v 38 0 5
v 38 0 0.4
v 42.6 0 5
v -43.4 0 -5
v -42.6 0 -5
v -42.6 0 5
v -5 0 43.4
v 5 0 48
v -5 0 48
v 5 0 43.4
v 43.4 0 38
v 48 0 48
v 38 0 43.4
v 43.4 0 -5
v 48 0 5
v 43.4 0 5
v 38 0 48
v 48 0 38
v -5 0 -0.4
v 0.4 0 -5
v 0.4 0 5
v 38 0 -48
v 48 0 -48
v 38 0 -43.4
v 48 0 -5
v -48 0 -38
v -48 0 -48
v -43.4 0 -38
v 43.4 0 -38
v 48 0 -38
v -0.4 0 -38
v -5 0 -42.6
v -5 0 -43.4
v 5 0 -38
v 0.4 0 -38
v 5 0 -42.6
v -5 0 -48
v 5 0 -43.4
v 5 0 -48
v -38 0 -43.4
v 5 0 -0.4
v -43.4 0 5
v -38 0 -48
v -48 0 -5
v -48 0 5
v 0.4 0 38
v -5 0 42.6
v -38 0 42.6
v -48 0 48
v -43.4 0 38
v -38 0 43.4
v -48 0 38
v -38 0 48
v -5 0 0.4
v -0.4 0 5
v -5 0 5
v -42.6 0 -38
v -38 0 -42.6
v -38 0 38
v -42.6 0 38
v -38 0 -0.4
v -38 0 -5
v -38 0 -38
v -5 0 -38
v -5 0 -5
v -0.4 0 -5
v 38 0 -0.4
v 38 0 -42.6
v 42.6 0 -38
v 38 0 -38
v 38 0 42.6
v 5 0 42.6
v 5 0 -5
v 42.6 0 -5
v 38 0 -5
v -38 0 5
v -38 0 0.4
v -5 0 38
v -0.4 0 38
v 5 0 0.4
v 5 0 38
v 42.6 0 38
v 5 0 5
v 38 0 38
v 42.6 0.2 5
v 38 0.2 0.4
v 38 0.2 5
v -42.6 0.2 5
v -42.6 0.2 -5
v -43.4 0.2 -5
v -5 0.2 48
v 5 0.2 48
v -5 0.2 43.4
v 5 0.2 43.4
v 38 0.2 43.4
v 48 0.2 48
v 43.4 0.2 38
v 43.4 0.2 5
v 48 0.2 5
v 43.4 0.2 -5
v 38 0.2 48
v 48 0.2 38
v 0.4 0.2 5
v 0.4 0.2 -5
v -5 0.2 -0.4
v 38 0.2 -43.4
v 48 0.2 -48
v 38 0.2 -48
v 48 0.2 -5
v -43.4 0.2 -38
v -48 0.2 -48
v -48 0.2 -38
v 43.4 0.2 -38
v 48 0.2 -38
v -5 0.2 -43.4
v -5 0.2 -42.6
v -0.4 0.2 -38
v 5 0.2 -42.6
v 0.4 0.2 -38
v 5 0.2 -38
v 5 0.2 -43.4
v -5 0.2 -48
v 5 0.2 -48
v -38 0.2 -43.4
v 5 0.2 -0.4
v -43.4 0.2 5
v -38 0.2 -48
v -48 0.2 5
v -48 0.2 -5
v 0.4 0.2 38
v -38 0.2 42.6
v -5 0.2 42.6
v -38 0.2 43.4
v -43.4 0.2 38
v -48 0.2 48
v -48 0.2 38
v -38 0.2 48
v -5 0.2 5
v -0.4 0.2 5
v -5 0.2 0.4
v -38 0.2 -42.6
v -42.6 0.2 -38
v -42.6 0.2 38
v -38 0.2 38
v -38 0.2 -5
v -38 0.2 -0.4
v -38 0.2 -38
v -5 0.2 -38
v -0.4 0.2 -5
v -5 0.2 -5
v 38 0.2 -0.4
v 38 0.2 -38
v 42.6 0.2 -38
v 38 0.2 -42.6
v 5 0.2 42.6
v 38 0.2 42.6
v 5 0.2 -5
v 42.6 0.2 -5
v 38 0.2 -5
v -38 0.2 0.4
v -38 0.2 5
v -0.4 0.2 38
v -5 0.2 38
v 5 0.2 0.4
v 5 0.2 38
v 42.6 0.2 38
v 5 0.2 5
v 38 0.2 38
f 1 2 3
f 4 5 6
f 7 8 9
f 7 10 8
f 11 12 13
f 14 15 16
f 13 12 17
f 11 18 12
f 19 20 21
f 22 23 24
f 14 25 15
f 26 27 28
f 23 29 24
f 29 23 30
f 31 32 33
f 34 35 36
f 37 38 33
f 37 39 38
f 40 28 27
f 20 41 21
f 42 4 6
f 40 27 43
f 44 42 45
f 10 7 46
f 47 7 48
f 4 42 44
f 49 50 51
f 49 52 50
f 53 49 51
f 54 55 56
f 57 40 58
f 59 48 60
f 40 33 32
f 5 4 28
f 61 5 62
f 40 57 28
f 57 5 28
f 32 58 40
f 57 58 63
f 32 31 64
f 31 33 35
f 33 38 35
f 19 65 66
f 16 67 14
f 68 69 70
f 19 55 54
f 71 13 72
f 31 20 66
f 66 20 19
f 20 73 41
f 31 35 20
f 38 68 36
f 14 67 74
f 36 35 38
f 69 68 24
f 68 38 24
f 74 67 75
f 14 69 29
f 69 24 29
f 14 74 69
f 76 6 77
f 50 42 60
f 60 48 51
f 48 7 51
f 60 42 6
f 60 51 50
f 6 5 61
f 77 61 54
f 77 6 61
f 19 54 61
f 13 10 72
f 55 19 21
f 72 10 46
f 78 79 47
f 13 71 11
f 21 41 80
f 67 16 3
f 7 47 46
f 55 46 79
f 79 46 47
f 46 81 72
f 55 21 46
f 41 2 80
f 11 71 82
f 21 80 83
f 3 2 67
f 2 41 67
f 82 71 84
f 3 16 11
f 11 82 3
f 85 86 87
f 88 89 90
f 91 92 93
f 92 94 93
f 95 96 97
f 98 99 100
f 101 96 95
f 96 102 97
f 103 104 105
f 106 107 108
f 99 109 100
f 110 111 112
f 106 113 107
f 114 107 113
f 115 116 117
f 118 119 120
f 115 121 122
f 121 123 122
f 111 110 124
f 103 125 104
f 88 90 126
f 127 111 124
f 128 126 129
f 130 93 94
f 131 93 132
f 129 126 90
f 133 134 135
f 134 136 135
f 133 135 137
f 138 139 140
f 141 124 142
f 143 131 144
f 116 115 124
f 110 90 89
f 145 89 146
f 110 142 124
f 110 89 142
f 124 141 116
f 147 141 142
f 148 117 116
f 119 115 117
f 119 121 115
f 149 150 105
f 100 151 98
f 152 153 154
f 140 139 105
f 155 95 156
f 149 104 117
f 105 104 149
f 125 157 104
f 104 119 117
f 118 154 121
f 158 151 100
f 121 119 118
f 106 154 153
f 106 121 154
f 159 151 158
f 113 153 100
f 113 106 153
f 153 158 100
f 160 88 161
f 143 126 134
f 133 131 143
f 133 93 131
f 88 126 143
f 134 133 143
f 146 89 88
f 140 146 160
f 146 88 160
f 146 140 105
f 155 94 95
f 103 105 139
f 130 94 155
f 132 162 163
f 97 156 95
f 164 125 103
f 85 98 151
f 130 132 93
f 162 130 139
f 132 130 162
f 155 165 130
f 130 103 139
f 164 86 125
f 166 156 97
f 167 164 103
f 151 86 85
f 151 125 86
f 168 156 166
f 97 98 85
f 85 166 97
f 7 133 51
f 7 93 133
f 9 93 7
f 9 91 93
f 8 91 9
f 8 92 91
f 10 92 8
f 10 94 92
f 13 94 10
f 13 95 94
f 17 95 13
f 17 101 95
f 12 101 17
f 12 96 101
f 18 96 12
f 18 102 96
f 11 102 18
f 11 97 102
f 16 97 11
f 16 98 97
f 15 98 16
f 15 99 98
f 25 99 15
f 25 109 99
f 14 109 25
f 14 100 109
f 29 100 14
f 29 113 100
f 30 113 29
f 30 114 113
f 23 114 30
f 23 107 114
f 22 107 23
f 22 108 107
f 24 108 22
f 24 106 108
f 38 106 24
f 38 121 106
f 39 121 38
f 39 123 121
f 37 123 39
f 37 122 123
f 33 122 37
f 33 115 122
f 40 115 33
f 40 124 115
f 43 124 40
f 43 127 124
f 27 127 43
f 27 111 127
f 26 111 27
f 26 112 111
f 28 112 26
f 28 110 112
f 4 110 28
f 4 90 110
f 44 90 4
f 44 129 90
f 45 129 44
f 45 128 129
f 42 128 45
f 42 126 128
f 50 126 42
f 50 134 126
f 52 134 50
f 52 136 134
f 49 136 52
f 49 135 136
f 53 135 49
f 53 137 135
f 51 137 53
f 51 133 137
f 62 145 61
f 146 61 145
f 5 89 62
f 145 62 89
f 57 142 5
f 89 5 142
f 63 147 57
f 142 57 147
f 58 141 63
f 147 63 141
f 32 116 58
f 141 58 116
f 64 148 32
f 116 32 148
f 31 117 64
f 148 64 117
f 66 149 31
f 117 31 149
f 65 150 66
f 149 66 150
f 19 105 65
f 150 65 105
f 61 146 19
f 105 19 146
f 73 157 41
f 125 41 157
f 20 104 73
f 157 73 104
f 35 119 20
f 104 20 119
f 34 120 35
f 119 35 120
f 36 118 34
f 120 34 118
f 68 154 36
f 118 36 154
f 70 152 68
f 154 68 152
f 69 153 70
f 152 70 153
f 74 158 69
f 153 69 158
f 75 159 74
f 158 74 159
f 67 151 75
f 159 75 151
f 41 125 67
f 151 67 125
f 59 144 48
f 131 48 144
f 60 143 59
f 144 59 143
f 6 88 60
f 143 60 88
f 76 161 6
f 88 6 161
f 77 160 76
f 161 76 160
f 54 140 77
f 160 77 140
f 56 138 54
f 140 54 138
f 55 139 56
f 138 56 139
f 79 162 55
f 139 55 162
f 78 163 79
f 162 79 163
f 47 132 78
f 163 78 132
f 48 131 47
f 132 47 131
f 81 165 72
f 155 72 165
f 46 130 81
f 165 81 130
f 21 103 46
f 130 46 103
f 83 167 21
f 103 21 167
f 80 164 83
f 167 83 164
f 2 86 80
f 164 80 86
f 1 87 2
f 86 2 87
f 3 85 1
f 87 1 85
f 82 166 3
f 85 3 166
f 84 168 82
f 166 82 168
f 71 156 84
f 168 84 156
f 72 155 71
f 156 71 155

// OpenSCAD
// Bed Level
// 5@axes

$fn = 20;

t_bed_width = 100;
t_bed_depth = 100;
t_bed_border = 2;
t_shape_xcount = 3;
t_shape_ycount = 3;
t_shape_xsize = 10;
t_shape_ysize = 10;
t_line_width = 0.8;
t_thickness = 0.2;


// Bed size
t_print_width = t_bed_width - t_shape_xsize - (2*t_bed_border);
t_print_depth = t_bed_depth - t_shape_ysize - (2*t_bed_border);


rotate(90,[-1, 0, 0]) translate([-t_bed_width*0.5, -t_bed_depth*0.5, 0]) linear_extrude(height = t_thickness) { 
    // shift everything to center in print area
    translate([(t_shape_xsize/2)+t_bed_border,(t_shape_ysize/2)+t_bed_border,0]){
        // intervals between printed shapes
        t_increment_x = t_print_width / (t_shape_xcount-1);
        t_increment_y = t_print_depth / (t_shape_ycount-1);

        // draw grid
        // draw horizontal lines along X axis
        for(t_curr_x = [0:t_shape_xcount-1]){
            translate([t_center_x, t_print_depth/2, 0]){
                square([t_line_width,t_print_depth], true);
            }
            t_center_x = t_curr_x * t_increment_x;
        }
        // draw vertical lines along Y axis
        for(t_curr_y = [0:t_shape_ycount-1]){
            translate([t_print_width/2, t_center_y, 0]){
                square([t_print_width, t_line_width], true);
            }
            t_center_y = t_curr_y * t_increment_y;
        }
        
        // draw shapes
        for(t_curr_x = [0:t_shape_xcount-1]){
            for(t_curr_y = [0:t_shape_ycount-1]){
                translate([t_center_x,t_center_y]){
                    square([t_shape_xsize,t_shape_ysize],true);
                }
                t_center_y = t_curr_y * t_increment_y;
            }
            t_center_x = t_curr_x * t_increment_x;
        }
    }
}
